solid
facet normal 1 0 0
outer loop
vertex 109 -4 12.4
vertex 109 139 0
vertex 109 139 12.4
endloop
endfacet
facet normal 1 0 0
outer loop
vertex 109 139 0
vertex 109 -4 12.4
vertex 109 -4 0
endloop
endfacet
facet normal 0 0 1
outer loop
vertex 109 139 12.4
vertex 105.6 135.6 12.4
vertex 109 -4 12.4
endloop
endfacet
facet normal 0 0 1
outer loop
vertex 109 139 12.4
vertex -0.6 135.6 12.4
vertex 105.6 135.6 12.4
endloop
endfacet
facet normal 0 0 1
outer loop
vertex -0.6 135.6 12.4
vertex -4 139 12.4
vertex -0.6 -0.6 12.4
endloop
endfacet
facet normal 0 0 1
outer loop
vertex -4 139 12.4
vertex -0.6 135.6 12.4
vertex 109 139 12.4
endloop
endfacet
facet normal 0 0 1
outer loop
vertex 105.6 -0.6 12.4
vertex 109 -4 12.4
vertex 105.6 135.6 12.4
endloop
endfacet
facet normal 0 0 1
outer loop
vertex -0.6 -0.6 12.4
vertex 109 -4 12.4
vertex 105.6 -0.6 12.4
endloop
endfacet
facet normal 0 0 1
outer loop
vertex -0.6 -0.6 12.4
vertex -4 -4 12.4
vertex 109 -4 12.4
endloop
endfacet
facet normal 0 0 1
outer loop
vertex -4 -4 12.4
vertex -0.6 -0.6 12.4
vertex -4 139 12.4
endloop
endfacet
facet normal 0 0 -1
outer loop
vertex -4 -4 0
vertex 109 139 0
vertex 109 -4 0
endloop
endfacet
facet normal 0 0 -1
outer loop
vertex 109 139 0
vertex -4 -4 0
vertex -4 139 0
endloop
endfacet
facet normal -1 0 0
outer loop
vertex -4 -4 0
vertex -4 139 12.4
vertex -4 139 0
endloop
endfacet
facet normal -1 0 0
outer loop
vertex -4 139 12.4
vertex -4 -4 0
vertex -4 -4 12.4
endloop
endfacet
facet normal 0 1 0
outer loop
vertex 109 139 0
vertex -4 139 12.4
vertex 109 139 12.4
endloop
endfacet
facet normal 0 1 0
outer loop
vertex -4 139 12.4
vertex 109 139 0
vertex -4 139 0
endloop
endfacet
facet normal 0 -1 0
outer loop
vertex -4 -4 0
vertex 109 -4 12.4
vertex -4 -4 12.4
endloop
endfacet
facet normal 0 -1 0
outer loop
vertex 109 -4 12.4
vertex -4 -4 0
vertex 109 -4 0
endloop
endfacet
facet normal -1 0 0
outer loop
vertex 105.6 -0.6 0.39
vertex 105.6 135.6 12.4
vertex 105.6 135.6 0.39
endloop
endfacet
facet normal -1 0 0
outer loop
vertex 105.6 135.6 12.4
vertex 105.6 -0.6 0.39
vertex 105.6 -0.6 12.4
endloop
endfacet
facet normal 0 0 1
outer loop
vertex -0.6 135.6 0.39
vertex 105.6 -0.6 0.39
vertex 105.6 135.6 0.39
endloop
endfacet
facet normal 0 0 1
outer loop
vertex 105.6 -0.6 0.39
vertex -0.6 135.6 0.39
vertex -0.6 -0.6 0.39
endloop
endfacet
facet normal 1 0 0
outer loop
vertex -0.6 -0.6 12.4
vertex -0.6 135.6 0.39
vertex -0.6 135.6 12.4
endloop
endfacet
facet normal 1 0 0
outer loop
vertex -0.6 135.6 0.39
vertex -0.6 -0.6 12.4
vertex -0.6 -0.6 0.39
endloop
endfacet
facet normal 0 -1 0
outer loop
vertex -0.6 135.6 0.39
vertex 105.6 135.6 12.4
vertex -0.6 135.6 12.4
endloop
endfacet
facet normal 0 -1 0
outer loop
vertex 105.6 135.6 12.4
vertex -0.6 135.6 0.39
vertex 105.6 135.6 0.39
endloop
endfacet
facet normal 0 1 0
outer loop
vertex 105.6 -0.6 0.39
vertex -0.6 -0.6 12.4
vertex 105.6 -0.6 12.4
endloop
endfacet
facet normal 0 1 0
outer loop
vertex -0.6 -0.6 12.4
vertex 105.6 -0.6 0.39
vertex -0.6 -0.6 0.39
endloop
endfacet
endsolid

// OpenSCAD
/*

  puzzle_box.scad

  Winston Freer Tile Puzzle: Box
      
  (c) olikraus@gmail.com

  This work is licensed under the Creative Commons Attribution-NonCommercial-ShareAlike 4.0 International License. 
  To view a copy of this license, visit http://creativecommons.org/licenses/by-nc-sa/4.0/.
    
*/

include <winston_freer.scad>;


box();
